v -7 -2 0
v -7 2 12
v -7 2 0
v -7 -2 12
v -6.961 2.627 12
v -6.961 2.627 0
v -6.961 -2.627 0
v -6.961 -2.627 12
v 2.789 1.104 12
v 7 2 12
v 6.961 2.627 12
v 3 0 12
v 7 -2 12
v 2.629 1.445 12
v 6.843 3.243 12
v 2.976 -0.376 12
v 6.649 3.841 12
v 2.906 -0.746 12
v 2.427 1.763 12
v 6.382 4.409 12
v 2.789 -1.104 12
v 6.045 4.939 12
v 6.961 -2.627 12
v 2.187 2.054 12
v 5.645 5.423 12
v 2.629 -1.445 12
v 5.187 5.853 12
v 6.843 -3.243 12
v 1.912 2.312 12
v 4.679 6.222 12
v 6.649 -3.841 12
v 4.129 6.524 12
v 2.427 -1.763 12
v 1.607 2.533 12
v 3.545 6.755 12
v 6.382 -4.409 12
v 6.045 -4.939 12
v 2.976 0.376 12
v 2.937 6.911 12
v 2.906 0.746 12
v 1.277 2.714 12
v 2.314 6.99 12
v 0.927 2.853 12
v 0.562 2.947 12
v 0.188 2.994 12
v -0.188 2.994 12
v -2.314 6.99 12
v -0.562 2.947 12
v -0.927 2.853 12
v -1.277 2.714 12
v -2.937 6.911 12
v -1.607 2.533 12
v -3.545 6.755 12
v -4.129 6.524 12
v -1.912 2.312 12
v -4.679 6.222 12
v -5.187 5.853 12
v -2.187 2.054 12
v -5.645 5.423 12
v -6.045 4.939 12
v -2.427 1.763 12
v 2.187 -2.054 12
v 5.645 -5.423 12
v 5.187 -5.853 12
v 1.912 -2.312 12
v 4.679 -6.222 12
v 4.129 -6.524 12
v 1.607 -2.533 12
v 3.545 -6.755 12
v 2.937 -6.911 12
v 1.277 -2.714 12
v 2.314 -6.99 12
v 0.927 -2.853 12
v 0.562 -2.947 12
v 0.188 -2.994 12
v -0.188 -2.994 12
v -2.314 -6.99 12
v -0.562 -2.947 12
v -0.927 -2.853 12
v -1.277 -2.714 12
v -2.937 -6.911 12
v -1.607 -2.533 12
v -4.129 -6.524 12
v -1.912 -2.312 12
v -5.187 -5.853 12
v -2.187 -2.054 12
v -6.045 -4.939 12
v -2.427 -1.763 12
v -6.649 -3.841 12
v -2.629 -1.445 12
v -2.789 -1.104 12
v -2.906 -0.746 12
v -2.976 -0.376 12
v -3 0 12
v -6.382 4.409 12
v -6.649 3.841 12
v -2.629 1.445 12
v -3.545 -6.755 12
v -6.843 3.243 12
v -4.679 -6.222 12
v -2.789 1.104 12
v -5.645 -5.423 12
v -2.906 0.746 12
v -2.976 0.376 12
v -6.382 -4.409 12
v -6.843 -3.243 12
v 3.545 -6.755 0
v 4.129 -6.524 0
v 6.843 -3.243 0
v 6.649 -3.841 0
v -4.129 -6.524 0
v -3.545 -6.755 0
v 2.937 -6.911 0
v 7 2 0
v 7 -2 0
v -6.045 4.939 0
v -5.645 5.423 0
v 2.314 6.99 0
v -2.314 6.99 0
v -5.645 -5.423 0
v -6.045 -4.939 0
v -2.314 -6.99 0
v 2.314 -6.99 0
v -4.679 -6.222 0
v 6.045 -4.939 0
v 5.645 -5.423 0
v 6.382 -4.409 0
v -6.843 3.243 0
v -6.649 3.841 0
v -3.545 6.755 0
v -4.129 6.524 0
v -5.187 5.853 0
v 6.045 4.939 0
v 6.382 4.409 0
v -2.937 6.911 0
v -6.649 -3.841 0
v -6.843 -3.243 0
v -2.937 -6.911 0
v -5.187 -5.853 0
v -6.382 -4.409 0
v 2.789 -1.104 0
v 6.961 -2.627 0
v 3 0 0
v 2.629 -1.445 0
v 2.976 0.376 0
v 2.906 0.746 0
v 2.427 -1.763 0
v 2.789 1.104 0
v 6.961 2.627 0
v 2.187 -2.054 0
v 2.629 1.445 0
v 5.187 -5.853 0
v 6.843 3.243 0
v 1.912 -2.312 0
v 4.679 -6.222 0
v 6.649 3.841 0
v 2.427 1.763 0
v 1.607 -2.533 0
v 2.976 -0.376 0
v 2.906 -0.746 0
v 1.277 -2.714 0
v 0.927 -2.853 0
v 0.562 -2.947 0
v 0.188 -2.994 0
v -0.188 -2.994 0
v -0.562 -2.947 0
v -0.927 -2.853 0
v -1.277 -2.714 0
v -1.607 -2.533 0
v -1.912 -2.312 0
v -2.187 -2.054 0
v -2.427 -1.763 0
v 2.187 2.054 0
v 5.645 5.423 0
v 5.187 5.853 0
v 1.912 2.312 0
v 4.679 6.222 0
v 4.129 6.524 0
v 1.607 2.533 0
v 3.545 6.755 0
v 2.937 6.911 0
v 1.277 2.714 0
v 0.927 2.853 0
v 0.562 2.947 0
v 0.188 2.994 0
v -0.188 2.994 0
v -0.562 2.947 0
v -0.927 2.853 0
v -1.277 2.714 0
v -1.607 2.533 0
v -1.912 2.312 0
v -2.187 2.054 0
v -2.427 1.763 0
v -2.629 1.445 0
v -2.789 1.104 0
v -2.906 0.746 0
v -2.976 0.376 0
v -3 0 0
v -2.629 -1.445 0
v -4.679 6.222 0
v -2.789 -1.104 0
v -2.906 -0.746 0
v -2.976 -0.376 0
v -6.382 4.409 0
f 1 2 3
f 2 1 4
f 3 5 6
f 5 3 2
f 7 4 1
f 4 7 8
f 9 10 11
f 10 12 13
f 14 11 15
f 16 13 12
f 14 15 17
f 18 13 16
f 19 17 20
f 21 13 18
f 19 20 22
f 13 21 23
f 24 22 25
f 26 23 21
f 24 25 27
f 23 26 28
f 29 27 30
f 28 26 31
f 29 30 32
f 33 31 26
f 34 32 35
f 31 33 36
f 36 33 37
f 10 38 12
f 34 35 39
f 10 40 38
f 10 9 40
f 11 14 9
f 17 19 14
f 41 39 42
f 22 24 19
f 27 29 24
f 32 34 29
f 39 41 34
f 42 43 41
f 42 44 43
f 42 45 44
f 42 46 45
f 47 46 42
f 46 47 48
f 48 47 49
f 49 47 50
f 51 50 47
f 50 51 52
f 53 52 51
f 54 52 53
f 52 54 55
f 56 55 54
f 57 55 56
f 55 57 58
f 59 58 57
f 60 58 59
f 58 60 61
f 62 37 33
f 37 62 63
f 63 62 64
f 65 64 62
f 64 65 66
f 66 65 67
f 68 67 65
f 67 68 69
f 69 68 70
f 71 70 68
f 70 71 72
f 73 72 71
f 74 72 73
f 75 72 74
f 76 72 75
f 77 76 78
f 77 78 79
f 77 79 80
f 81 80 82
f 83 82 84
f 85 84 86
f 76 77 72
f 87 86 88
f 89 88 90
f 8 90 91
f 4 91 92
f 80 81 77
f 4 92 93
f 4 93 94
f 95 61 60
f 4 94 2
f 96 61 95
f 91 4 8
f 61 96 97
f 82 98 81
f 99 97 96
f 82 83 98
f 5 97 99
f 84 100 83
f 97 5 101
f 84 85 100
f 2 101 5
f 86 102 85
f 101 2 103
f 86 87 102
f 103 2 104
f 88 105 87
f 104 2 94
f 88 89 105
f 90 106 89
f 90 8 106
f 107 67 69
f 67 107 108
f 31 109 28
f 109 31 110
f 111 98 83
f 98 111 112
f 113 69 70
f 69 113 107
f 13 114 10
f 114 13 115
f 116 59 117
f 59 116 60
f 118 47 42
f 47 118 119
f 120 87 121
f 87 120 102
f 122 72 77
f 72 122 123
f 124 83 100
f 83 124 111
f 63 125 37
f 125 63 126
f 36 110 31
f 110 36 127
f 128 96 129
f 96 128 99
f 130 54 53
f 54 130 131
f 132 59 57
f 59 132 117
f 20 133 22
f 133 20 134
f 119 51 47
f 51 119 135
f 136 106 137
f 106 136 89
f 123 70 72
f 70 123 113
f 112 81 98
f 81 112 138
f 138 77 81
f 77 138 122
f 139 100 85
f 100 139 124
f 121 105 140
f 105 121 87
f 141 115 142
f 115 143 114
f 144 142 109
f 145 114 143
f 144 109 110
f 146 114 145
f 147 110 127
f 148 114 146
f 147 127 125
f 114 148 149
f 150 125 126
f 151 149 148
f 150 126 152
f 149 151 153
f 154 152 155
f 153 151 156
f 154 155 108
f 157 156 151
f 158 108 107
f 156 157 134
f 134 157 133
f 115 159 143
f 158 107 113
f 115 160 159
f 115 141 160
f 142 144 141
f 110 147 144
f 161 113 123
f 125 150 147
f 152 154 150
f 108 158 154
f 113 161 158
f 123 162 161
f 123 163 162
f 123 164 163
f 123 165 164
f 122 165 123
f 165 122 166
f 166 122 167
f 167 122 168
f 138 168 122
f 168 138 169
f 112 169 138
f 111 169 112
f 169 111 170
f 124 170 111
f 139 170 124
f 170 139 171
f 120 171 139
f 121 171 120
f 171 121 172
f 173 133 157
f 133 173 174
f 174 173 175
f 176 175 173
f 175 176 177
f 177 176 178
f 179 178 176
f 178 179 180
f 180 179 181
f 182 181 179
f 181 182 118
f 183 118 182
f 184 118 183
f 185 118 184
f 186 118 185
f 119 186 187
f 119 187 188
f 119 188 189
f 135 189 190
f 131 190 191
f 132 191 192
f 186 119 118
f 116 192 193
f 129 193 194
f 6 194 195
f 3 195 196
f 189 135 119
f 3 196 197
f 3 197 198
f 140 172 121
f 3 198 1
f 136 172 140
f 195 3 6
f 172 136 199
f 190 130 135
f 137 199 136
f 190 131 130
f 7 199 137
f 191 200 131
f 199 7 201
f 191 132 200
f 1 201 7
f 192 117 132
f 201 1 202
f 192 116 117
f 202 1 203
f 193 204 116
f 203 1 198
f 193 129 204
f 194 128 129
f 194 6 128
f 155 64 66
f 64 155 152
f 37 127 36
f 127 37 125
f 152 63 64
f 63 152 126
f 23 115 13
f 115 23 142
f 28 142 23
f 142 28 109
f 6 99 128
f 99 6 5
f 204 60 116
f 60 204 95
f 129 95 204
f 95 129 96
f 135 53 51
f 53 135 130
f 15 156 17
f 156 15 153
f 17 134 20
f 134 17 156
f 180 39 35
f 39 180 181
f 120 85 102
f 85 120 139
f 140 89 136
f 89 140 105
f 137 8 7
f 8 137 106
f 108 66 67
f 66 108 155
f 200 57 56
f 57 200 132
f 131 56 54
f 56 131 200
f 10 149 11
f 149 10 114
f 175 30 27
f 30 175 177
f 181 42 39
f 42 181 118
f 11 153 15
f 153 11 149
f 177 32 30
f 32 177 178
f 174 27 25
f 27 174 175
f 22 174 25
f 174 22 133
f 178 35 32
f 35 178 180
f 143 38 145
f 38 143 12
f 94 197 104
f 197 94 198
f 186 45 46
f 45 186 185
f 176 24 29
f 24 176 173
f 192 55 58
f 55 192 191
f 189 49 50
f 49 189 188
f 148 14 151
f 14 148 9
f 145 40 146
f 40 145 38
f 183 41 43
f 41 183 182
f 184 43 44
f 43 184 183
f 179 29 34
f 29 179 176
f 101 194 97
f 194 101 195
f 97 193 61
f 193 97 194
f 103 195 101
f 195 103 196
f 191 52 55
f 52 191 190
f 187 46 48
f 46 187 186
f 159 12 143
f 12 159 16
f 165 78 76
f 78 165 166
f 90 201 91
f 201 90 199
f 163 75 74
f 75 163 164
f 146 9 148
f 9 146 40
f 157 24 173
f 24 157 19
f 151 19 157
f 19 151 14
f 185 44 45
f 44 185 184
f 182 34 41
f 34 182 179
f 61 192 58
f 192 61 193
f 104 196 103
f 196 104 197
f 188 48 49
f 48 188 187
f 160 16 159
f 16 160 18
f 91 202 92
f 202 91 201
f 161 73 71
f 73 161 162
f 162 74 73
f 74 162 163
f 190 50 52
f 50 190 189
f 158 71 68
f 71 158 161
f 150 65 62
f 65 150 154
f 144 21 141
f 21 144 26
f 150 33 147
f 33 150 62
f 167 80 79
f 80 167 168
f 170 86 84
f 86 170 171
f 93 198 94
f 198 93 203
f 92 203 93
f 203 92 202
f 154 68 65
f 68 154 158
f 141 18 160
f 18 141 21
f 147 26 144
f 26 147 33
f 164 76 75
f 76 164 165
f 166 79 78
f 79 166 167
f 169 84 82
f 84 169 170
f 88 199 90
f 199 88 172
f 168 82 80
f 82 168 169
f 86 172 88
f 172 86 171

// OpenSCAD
// Generated by SolidPython 1.1.3 on 2023-03-12 22:44:04
$fn = 50;


difference() {
	union() {
		translate(v = [0, 0, 0]) {
			rotate(a = [0, 0, 0]) {
				hull() {
					translate(v = [-2.0000000000, 2.0000000000, 0]) {
						rotate(a = [0, 0, 0]) {
							translate(v = [0, 0, 0]) {
								rotate(a = [0, 0, 0]) {
									cylinder(h = 12, r = 5);
								}
							}
						}
					}
					translate(v = [2.0000000000, 2.0000000000, 0]) {
						rotate(a = [0, 0, 0]) {
							translate(v = [0, 0, 0]) {
								rotate(a = [0, 0, 0]) {
									cylinder(h = 12, r = 5);
								}
							}
						}
					}
					translate(v = [-2.0000000000, -2.0000000000, 0]) {
						rotate(a = [0, 0, 0]) {
							translate(v = [0, 0, 0]) {
								rotate(a = [0, 0, 0]) {
									cylinder(h = 12, r = 5);
								}
							}
						}
					}
					translate(v = [2.0000000000, -2.0000000000, 0]) {
						rotate(a = [0, 0, 0]) {
							translate(v = [0, 0, 0]) {
								rotate(a = [0, 0, 0]) {
									cylinder(h = 12, r = 5);
								}
							}
						}
					}
				}
			}
		}
	}
	union() {
		translate(v = [0.0000000000, 0.0000000000, 0]) {
			rotate(a = [0, 0, 0]) {
				translate(v = [0, 0, -50]) {
					rotate(a = [0, 0, 0]) {
						cylinder(h = 100, r = 3.0000000000);
					}
				}
			}
		}
	}
}
/***********************************************
*********      SolidPython code:      **********
************************************************
 
from solid import *
import os
import subprocess

import oomB

import opsc_library_gen

mode = "laser"
#mode = "3d_print"

defined_objects = {}

radius_dict = {}
countersunk_dict = {}


def set_mode(m):
    global mode
    mode = m
    radius_dict['M6'] = 6.5/2
    radius_dict['M3'] = 3.3/2
    if mode == "laser":
        radius_dict['M6'] = 6/2
        radius_dict['M3'] = 3/2

    countersunk_dict['M3'] = {}
    countersunk_dict['M3']['little_rad'] = radius_dict['M3']
    countersunk_dict['M3']['big_rad'] = (5.5+0.6)/2
    if mode == "laser":
        countersunk_dict['M3']['big_rad'] = (4.75+0.6)/2
        countersunk_dict['M3']['little_rad'] = (4.75+0.6)/2

    countersunk_dict['M3']['height'] = 1.7


def opsc_make_object(filename, objects, save_type="none",resolution=50, layers = 1, tilediff = 200, mode="laser", overwrite=True):
    if overwrite or not os.path.exists(filename):
        set_mode(mode)
        save_type = save_type.lower()
        os.makedirs(os.path.dirname(filename), exist_ok=True)
        final_object = opsc_get_object(objects, mode = mode)
        # Save the final object to the specified filename    
        scad_render_to_file(final_object, filename, file_header='$fn = %s;' % resolution, include_orig_code=True)
        if mode == "laser":
            filename_laser = filename.replace(".scad","-flat.scad")
            scad_render_to_file(getLaser(final_object, layers=layers, tilediff=tilediff), filename_laser, file_header='$fn = %s;' % resolution, include_orig_code=True)
            if save_type == "all":
                saveToAll(filename_laser)
            elif save_type == "dxf":
                saveToDxf(filename_laser)
        if save_type == "all":
            saveToAll(filename)
        elif save_type == "dxf":
            saveToDxf(filename)


def opsc_get_object(objects, mode = "laser"):
    # Create the solidpython objects only include the positive objects and if they don't have inclusion or their inclusion is either all or mode
    # Initialize an empty list to store the results
    positive_objects = []

    # Iterate over the "objects" list
    for obj in objects:
        # Check if the current object has a "type" key with a value of "positive"
        if obj['type'] == 'positive':
            # Check if the current object has an "inclusion" key and its value matches "mode",
            # or if the current object does not have an "inclusion" key at all
            if not 'inclusion' in obj or obj['inclusion'] == "all" or obj['inclusion'] == mode:
                # Call the "get_opsc_item" function with the current object as an argument
                opsc_item = get_opsc_item(obj)
                # Add the result to the "positive_objects" list
                positive_objects.append(opsc_item)
# Initialize an empty list to store the results
    negative_objects = []

    # Iterate over the "objects" list
    for obj in objects:
        # Check if the current object has a "type" key with a value of "negative"
        if obj['type'] == 'negative':
            # Check if the current object has an "inclusion" key and its value matches "mode",
            # or if the current object does not have an "inclusion" key at all
            if not 'inclusion' in obj or obj['inclusion'] == "all" or obj['inclusion'] == mode:
                # Call the "get_opsc_item" function with the current object as an argument
                opsc_item = get_opsc_item(obj)
                # Add the result to the "negative_objects" list
                negative_objects.append(opsc_item)
    
    #positive_objects = [get_opsc_item(obj) for obj in objects if obj['type'] == 'positive']
    #negative_objects = [get_opsc_item(obj) for obj in objects if obj['type'] == 'negative']
    # Union the positive objects
    positive_object = union()(*positive_objects)
    # Union the negative objects
    negative_object = union()(*negative_objects)
    # Create the final object by subtracting the negative objects from the positive objects
    return difference()(positive_object, negative_object)

def get_opsc_item(params):
    # A dictionary to map radius string values to numerical values
    #radius_dict = {'small': 5, 'medium': 10, 'large': 15}
    # An array of function names for basic shapes
    basic_shapes = ['cube', 'sphere', 'cylinder']
    
    # An array of function names for other shapes
    other_shapes = ['hole', 'slot', 'rounded_rectangle', 'countersunk']
    


    # Convert radius to r if present, and remove radius from the params dictionary
    if 'radius' in params:
        if isinstance(params['radius'], str):
            # Use the radius_dict to map the radius string value to a numerical value
            params['r'] = radius_dict[params['radius']]
        else:
            params['r'] = params['radius']
        del params['radius']
    

    # Check if the object type is a basic shape
    if params['shape'] in basic_shapes:
        # Remove shape and unexpected dictionary values
        allowed_keys = {'size', 'r', 'r1', 'r2', 'd', 'h', 'rw', 'rh', 'dw', 'dh'}
        shape_params = {k: v for k, v in params.items() if k in allowed_keys}

        # Call the corresponding function for the shape parameter, using ** notation to pass the shape_params dictionary as keyword arguments
        return get_opsc_transform(params,globals()[params['shape']](**shape_params))
    
    # If the object type is not a basic shape, check if it's a defined object or one of the other shapes
    elif params['shape'] in other_shapes:
        # Call the corresponding function for the shape parameter, passing the params dictionary as an argument
        p2 = copy.deepcopy(params)
        p2["pos"] = [0,0,0]
        return get_opsc_transform(params,globals()[params['shape']](p2))
    
    # If the object is not a basic shape or a defined object, try to import it from a .scad file
    else:
        obj = defined_objects[params['shape']]
        return get_opsc_transform(params,obj)

def get_opsc_transform(params, solid_obj):
    # Rotate the object based on the 'rot' field in the params dictionary, or the 'rotX', 'rotY', and 'rotZ' fields if 'rot' is not present
    rot = params.get('rot', [])
    if rot:
        rotX, rotY, rotZ = rot
    else:
        rotX = params.get('rotX', 0)
        rotY = params.get('rotY', 0)
        rotZ = params.get('rotZ', 0)
    solid_obj = rotate([rotX, rotY, rotZ])(solid_obj)

    # Translate the object based on the 'pos' field in the params dictionary, or the 'x', 'y', and 'z' fields if 'pos' is not present
    pos = params.get('pos', [])
    if pos:
        x, y, z = pos
    else:
        x = params.get('x', 0)
        y = params.get('y', 0)
        z = params.get('z', 0)
    solid_obj = translate([x, y, z])(solid_obj)
    return solid_obj


import random

def opsc_easy_array(type, shape, repeats, pos_start, shift_arr, **kwargs):
    for i in range(0,3):
        repeats.append(1)
        pos_start.append(0)
        shift_arr.append(0)
    return_objects = []

    for x in range(0,repeats[0]):
        for y in range(0,repeats[1]):
            for z in range(0,repeats[2]):
                return_objects.append(opsc_easy(type, shape, pos=[pos_start[0]+x*shift_arr[0],pos_start[1]+y*shift_arr[1],pos_start[2]+z*shift_arr[2]], **kwargs))
    return return_objects                



def opsc_easy(type, shape, **kwargs):
    obj = {
        'type': type,
        'shape': shape
    }
    for param in ['size', 'r', 'r1', 'r2', 'd', 'h', 'rw', 'rh', 'dw', 'dh', 'pos', 'x', 'y', 'z', 'rot', 'rotX', 'rotY', 'rotZ', "w", "inclusion"]:
        if param in kwargs:
            obj[param] = kwargs[param]
    return obj

def hole(params):
    p2 = copy.deepcopy(params)  
    # Check if the radius is a string and replace it with the corresponding value from the dictionary
    if isinstance(p2['r'], str):
        p2['r'] = radius_dict[p2['r']]
    
    # Set the height to 100 if not specified
    if 'h' not in p2:
        p2['h'] = 100
        p2["pos"] = [0,0,-50]
    p2["center"] = True
    # Create the cylinder object
    p2["shape"] = "cylinder"
    p2["type"] = "positive"

    return get_opsc_item(p2)

import copy

def countersunk(params):
    p2 = copy.deepcopy(params)
    counter_rad = p2['r']
    p2['r'] = radius_dict[p2['r']]
    hp = copy.deepcopy(p2)
    hp["type"] = "positive"
    hp["shape"] = "hole"
    del hp["rot"]
    hol = get_opsc_item(hp)
    
    cp = copy.deepcopy(p2)
    cp["h"] = countersunk_dict[counter_rad]["height"]
    cp["r2"] = countersunk_dict[counter_rad]["little_rad"]
    cp["r1"] = countersunk_dict[counter_rad]["big_rad"]
    del cp["r"]
    del cp["rot"]
    cp["type"] = "positive"
    cp["shape"] = "cylinder"
    cp["pos"] = [0,0,0]

    top = get_opsc_item(cp)
    return union()(hol,top)



def slot(params):  
    p2 = copy.deepcopy(params) 
    if isinstance(p2['r'], str):
        p2['r'] = radius_dict[p2['r']]
    p2["type"] = "positive"
    p2["shape"] = "hole"
    del p2["rot"]
    p2["pos"] = [0,0,0]
    left = copy.deepcopy(p2)
    right = copy.deepcopy(p2)
    left["pos"][0] = p2["w"] / 2 - p2["r"] 
    
    right["pos"][0] = -p2["w"] / 2 + p2["r"] 
    pass
    leftObj = get_opsc_item(left)
    rightObj = get_opsc_item(right)
    return hull()(leftObj, rightObj)

def rounded_rectangle(params):   
    p2 = copy.deepcopy(params) 
    p2["h"] = p2["size"][2]
    p2["pos"] = p2.get("pos", [0, 0, 0]) 
    p2["type"] = "positive"
    p2["shape"] = "hole"
    p2["pos"] = [0,0,0]
    
    if 'rot' in p2:
        del p2["rot"]   
    if 'r' not in p2:
        p2["r"] = 5 
    tl = copy.deepcopy(p2)
    tr = copy.deepcopy(p2)
    bl = copy.deepcopy(p2)
    br = copy.deepcopy(p2)
    tl["pos"][0] = -(p2["size"][0] - p2["r"]*2)/2
    tl["pos"][1] = (p2["size"][1] - p2["r"]*2)/2
    tr["pos"][0] = (p2["size"][0] - p2["r"]*2)/2
    tr["pos"][1] = (p2["size"][1] - p2["r"]*2)/2
    bl["pos"][0] = -(p2["size"][0] - p2["r"]*2)/2
    bl["pos"][1] = -(p2["size"][1] - p2["r"]*2)/2
    br["pos"][0] = (p2["size"][0] - p2["r"]*2)/2
    br["pos"][1] = -(p2["size"][1] - p2["r"]*2)/2
    del tl["size"]
    del tr["size"]
    del bl["size"]
    del br["size"]
    tlo = get_opsc_item(tl)
    tro = get_opsc_item(tr)
    blo = get_opsc_item(bl)
    bro = get_opsc_item(br)    
    return hull()(tlo, tro, blo, bro)



def import_scad_object(filename):
    # Import the .scad file and convert it to a solidpython object
    #filename = "parts"
    obj = import_scad(filename)
    return obj.main()
    


import os
import solid as solidpython

# A dictionary to store the defined objects


def load_scad_objects():
    opsc_library_gen.gen_library(defined_objects)

import random

def test(num_objects):
    objects = []
    for i in range(num_objects):
        # Choose a random shape
        #shape = random.choice(['cube', 'sphere', 'cylinder', 'hole', 'slot', "rounded_rectangle"])
        shape = random.choice(["rounded_rectangle"])

        # Choose a random type
        type = random.choice(['positive', 'negative'])
        
        # Create an empty object dictionary
        obj = {'shape': shape, 'type': type}
        
        # Set shape-specific parameters
        if obj['shape'] in ['cube']:
            obj['size'] =  [random.uniform(5, 15), random.uniform(5, 15), random.uniform(5, 15)]
        if obj['shape'] in ['rounded_rectangle']:
            obj['size'] =  [random.uniform(5, 15), random.uniform(5, 15), random.uniform(5, 15)]
            obj['r'] = random.uniform(0.5, 5)
        elif obj['shape'] == 'sphere':
            obj['r'] = random.uniform(5, 15)
        elif obj['shape'] in ['cylinder', 'hole']:
            obj['r'] = random.uniform(0.5, 5)
            obj['h'] = random.uniform(5, 15)
        elif obj['shape'] == 'slot':
            obj['r'] = random.uniform(0.5, 5)
            obj['h'] = random.uniform(5, 15)
            obj['w'] = random.uniform(5, 15)
        
        # Set a random position and rotation
        obj['pos'] = [random.uniform(-20, 20), random.uniform(-20, 20), random.uniform(-20, 20)]
        obj['rot'] = [random.uniform(-180, 180), random.uniform(-180, 180), random.uniform(-180, 180)]
        
        # Add the object to the list
        objects.append(obj)
    return objects

####### old file saving
def saveToAll(fileIn):
    saveToDxf(fileIn)
    saveToPng(fileIn)
    saveToStl(fileIn)
    saveToSvg(fileIn)

def saveToDxf(fileIn, fileOut="", copy_to_laser=True):
    if fileOut == "":
        fileOut = fileIn.replace(".scad",".dxf")
    saveToFile(fileIn, fileOut)


    
def saveToPng(fileIn, fileOut="",extra="--render"):
    if fileOut == "":
        fileOut = fileIn.replace(".scad",".png")
    saveToFile(fileIn, fileOut)

def saveToStl(fileIn, fileOut=""):
    if fileOut == "":
        fileOut = fileIn.replace(".scad",".stl")
    saveToFile(fileIn, fileOut)
    
def saveToSvg(fileIn, fileOut=""):
    if fileOut == "":
        fileOut = fileIn.replace(".scad",".svg")
    saveToFile(fileIn, fileOut)

def saveToFile(fileIn, fileOut,extra=""):
    #extra = extra + " --colorscheme Tomorrow"

    launchStr = 'openscad -o "' + fileOut + '"' + extra + ' "' + fileIn + '"'
    if ".png" in fileOut:
        launchStr = launchStr + " --render"
    print("            saveToFile launch string: " + launchStr)
    subprocess.run(launchStr)
    x=0

def getLaser(final_object,start=1.5,layers=1,thickness=3,tilediff=200):
        rv= []

        for x in range(layers):
            rv.append(translate([0,x*tilediff,0])(
                    projection()(
                        intersection()(translate([-500,-500,start+x*thickness])(cube(size=[1000,1000,0.1])),
                            final_object
                        )
                    )
            )
            )
            
        return union()(rv)

set_mode("laser")
load_scad_objects() 
 
************************************************/
